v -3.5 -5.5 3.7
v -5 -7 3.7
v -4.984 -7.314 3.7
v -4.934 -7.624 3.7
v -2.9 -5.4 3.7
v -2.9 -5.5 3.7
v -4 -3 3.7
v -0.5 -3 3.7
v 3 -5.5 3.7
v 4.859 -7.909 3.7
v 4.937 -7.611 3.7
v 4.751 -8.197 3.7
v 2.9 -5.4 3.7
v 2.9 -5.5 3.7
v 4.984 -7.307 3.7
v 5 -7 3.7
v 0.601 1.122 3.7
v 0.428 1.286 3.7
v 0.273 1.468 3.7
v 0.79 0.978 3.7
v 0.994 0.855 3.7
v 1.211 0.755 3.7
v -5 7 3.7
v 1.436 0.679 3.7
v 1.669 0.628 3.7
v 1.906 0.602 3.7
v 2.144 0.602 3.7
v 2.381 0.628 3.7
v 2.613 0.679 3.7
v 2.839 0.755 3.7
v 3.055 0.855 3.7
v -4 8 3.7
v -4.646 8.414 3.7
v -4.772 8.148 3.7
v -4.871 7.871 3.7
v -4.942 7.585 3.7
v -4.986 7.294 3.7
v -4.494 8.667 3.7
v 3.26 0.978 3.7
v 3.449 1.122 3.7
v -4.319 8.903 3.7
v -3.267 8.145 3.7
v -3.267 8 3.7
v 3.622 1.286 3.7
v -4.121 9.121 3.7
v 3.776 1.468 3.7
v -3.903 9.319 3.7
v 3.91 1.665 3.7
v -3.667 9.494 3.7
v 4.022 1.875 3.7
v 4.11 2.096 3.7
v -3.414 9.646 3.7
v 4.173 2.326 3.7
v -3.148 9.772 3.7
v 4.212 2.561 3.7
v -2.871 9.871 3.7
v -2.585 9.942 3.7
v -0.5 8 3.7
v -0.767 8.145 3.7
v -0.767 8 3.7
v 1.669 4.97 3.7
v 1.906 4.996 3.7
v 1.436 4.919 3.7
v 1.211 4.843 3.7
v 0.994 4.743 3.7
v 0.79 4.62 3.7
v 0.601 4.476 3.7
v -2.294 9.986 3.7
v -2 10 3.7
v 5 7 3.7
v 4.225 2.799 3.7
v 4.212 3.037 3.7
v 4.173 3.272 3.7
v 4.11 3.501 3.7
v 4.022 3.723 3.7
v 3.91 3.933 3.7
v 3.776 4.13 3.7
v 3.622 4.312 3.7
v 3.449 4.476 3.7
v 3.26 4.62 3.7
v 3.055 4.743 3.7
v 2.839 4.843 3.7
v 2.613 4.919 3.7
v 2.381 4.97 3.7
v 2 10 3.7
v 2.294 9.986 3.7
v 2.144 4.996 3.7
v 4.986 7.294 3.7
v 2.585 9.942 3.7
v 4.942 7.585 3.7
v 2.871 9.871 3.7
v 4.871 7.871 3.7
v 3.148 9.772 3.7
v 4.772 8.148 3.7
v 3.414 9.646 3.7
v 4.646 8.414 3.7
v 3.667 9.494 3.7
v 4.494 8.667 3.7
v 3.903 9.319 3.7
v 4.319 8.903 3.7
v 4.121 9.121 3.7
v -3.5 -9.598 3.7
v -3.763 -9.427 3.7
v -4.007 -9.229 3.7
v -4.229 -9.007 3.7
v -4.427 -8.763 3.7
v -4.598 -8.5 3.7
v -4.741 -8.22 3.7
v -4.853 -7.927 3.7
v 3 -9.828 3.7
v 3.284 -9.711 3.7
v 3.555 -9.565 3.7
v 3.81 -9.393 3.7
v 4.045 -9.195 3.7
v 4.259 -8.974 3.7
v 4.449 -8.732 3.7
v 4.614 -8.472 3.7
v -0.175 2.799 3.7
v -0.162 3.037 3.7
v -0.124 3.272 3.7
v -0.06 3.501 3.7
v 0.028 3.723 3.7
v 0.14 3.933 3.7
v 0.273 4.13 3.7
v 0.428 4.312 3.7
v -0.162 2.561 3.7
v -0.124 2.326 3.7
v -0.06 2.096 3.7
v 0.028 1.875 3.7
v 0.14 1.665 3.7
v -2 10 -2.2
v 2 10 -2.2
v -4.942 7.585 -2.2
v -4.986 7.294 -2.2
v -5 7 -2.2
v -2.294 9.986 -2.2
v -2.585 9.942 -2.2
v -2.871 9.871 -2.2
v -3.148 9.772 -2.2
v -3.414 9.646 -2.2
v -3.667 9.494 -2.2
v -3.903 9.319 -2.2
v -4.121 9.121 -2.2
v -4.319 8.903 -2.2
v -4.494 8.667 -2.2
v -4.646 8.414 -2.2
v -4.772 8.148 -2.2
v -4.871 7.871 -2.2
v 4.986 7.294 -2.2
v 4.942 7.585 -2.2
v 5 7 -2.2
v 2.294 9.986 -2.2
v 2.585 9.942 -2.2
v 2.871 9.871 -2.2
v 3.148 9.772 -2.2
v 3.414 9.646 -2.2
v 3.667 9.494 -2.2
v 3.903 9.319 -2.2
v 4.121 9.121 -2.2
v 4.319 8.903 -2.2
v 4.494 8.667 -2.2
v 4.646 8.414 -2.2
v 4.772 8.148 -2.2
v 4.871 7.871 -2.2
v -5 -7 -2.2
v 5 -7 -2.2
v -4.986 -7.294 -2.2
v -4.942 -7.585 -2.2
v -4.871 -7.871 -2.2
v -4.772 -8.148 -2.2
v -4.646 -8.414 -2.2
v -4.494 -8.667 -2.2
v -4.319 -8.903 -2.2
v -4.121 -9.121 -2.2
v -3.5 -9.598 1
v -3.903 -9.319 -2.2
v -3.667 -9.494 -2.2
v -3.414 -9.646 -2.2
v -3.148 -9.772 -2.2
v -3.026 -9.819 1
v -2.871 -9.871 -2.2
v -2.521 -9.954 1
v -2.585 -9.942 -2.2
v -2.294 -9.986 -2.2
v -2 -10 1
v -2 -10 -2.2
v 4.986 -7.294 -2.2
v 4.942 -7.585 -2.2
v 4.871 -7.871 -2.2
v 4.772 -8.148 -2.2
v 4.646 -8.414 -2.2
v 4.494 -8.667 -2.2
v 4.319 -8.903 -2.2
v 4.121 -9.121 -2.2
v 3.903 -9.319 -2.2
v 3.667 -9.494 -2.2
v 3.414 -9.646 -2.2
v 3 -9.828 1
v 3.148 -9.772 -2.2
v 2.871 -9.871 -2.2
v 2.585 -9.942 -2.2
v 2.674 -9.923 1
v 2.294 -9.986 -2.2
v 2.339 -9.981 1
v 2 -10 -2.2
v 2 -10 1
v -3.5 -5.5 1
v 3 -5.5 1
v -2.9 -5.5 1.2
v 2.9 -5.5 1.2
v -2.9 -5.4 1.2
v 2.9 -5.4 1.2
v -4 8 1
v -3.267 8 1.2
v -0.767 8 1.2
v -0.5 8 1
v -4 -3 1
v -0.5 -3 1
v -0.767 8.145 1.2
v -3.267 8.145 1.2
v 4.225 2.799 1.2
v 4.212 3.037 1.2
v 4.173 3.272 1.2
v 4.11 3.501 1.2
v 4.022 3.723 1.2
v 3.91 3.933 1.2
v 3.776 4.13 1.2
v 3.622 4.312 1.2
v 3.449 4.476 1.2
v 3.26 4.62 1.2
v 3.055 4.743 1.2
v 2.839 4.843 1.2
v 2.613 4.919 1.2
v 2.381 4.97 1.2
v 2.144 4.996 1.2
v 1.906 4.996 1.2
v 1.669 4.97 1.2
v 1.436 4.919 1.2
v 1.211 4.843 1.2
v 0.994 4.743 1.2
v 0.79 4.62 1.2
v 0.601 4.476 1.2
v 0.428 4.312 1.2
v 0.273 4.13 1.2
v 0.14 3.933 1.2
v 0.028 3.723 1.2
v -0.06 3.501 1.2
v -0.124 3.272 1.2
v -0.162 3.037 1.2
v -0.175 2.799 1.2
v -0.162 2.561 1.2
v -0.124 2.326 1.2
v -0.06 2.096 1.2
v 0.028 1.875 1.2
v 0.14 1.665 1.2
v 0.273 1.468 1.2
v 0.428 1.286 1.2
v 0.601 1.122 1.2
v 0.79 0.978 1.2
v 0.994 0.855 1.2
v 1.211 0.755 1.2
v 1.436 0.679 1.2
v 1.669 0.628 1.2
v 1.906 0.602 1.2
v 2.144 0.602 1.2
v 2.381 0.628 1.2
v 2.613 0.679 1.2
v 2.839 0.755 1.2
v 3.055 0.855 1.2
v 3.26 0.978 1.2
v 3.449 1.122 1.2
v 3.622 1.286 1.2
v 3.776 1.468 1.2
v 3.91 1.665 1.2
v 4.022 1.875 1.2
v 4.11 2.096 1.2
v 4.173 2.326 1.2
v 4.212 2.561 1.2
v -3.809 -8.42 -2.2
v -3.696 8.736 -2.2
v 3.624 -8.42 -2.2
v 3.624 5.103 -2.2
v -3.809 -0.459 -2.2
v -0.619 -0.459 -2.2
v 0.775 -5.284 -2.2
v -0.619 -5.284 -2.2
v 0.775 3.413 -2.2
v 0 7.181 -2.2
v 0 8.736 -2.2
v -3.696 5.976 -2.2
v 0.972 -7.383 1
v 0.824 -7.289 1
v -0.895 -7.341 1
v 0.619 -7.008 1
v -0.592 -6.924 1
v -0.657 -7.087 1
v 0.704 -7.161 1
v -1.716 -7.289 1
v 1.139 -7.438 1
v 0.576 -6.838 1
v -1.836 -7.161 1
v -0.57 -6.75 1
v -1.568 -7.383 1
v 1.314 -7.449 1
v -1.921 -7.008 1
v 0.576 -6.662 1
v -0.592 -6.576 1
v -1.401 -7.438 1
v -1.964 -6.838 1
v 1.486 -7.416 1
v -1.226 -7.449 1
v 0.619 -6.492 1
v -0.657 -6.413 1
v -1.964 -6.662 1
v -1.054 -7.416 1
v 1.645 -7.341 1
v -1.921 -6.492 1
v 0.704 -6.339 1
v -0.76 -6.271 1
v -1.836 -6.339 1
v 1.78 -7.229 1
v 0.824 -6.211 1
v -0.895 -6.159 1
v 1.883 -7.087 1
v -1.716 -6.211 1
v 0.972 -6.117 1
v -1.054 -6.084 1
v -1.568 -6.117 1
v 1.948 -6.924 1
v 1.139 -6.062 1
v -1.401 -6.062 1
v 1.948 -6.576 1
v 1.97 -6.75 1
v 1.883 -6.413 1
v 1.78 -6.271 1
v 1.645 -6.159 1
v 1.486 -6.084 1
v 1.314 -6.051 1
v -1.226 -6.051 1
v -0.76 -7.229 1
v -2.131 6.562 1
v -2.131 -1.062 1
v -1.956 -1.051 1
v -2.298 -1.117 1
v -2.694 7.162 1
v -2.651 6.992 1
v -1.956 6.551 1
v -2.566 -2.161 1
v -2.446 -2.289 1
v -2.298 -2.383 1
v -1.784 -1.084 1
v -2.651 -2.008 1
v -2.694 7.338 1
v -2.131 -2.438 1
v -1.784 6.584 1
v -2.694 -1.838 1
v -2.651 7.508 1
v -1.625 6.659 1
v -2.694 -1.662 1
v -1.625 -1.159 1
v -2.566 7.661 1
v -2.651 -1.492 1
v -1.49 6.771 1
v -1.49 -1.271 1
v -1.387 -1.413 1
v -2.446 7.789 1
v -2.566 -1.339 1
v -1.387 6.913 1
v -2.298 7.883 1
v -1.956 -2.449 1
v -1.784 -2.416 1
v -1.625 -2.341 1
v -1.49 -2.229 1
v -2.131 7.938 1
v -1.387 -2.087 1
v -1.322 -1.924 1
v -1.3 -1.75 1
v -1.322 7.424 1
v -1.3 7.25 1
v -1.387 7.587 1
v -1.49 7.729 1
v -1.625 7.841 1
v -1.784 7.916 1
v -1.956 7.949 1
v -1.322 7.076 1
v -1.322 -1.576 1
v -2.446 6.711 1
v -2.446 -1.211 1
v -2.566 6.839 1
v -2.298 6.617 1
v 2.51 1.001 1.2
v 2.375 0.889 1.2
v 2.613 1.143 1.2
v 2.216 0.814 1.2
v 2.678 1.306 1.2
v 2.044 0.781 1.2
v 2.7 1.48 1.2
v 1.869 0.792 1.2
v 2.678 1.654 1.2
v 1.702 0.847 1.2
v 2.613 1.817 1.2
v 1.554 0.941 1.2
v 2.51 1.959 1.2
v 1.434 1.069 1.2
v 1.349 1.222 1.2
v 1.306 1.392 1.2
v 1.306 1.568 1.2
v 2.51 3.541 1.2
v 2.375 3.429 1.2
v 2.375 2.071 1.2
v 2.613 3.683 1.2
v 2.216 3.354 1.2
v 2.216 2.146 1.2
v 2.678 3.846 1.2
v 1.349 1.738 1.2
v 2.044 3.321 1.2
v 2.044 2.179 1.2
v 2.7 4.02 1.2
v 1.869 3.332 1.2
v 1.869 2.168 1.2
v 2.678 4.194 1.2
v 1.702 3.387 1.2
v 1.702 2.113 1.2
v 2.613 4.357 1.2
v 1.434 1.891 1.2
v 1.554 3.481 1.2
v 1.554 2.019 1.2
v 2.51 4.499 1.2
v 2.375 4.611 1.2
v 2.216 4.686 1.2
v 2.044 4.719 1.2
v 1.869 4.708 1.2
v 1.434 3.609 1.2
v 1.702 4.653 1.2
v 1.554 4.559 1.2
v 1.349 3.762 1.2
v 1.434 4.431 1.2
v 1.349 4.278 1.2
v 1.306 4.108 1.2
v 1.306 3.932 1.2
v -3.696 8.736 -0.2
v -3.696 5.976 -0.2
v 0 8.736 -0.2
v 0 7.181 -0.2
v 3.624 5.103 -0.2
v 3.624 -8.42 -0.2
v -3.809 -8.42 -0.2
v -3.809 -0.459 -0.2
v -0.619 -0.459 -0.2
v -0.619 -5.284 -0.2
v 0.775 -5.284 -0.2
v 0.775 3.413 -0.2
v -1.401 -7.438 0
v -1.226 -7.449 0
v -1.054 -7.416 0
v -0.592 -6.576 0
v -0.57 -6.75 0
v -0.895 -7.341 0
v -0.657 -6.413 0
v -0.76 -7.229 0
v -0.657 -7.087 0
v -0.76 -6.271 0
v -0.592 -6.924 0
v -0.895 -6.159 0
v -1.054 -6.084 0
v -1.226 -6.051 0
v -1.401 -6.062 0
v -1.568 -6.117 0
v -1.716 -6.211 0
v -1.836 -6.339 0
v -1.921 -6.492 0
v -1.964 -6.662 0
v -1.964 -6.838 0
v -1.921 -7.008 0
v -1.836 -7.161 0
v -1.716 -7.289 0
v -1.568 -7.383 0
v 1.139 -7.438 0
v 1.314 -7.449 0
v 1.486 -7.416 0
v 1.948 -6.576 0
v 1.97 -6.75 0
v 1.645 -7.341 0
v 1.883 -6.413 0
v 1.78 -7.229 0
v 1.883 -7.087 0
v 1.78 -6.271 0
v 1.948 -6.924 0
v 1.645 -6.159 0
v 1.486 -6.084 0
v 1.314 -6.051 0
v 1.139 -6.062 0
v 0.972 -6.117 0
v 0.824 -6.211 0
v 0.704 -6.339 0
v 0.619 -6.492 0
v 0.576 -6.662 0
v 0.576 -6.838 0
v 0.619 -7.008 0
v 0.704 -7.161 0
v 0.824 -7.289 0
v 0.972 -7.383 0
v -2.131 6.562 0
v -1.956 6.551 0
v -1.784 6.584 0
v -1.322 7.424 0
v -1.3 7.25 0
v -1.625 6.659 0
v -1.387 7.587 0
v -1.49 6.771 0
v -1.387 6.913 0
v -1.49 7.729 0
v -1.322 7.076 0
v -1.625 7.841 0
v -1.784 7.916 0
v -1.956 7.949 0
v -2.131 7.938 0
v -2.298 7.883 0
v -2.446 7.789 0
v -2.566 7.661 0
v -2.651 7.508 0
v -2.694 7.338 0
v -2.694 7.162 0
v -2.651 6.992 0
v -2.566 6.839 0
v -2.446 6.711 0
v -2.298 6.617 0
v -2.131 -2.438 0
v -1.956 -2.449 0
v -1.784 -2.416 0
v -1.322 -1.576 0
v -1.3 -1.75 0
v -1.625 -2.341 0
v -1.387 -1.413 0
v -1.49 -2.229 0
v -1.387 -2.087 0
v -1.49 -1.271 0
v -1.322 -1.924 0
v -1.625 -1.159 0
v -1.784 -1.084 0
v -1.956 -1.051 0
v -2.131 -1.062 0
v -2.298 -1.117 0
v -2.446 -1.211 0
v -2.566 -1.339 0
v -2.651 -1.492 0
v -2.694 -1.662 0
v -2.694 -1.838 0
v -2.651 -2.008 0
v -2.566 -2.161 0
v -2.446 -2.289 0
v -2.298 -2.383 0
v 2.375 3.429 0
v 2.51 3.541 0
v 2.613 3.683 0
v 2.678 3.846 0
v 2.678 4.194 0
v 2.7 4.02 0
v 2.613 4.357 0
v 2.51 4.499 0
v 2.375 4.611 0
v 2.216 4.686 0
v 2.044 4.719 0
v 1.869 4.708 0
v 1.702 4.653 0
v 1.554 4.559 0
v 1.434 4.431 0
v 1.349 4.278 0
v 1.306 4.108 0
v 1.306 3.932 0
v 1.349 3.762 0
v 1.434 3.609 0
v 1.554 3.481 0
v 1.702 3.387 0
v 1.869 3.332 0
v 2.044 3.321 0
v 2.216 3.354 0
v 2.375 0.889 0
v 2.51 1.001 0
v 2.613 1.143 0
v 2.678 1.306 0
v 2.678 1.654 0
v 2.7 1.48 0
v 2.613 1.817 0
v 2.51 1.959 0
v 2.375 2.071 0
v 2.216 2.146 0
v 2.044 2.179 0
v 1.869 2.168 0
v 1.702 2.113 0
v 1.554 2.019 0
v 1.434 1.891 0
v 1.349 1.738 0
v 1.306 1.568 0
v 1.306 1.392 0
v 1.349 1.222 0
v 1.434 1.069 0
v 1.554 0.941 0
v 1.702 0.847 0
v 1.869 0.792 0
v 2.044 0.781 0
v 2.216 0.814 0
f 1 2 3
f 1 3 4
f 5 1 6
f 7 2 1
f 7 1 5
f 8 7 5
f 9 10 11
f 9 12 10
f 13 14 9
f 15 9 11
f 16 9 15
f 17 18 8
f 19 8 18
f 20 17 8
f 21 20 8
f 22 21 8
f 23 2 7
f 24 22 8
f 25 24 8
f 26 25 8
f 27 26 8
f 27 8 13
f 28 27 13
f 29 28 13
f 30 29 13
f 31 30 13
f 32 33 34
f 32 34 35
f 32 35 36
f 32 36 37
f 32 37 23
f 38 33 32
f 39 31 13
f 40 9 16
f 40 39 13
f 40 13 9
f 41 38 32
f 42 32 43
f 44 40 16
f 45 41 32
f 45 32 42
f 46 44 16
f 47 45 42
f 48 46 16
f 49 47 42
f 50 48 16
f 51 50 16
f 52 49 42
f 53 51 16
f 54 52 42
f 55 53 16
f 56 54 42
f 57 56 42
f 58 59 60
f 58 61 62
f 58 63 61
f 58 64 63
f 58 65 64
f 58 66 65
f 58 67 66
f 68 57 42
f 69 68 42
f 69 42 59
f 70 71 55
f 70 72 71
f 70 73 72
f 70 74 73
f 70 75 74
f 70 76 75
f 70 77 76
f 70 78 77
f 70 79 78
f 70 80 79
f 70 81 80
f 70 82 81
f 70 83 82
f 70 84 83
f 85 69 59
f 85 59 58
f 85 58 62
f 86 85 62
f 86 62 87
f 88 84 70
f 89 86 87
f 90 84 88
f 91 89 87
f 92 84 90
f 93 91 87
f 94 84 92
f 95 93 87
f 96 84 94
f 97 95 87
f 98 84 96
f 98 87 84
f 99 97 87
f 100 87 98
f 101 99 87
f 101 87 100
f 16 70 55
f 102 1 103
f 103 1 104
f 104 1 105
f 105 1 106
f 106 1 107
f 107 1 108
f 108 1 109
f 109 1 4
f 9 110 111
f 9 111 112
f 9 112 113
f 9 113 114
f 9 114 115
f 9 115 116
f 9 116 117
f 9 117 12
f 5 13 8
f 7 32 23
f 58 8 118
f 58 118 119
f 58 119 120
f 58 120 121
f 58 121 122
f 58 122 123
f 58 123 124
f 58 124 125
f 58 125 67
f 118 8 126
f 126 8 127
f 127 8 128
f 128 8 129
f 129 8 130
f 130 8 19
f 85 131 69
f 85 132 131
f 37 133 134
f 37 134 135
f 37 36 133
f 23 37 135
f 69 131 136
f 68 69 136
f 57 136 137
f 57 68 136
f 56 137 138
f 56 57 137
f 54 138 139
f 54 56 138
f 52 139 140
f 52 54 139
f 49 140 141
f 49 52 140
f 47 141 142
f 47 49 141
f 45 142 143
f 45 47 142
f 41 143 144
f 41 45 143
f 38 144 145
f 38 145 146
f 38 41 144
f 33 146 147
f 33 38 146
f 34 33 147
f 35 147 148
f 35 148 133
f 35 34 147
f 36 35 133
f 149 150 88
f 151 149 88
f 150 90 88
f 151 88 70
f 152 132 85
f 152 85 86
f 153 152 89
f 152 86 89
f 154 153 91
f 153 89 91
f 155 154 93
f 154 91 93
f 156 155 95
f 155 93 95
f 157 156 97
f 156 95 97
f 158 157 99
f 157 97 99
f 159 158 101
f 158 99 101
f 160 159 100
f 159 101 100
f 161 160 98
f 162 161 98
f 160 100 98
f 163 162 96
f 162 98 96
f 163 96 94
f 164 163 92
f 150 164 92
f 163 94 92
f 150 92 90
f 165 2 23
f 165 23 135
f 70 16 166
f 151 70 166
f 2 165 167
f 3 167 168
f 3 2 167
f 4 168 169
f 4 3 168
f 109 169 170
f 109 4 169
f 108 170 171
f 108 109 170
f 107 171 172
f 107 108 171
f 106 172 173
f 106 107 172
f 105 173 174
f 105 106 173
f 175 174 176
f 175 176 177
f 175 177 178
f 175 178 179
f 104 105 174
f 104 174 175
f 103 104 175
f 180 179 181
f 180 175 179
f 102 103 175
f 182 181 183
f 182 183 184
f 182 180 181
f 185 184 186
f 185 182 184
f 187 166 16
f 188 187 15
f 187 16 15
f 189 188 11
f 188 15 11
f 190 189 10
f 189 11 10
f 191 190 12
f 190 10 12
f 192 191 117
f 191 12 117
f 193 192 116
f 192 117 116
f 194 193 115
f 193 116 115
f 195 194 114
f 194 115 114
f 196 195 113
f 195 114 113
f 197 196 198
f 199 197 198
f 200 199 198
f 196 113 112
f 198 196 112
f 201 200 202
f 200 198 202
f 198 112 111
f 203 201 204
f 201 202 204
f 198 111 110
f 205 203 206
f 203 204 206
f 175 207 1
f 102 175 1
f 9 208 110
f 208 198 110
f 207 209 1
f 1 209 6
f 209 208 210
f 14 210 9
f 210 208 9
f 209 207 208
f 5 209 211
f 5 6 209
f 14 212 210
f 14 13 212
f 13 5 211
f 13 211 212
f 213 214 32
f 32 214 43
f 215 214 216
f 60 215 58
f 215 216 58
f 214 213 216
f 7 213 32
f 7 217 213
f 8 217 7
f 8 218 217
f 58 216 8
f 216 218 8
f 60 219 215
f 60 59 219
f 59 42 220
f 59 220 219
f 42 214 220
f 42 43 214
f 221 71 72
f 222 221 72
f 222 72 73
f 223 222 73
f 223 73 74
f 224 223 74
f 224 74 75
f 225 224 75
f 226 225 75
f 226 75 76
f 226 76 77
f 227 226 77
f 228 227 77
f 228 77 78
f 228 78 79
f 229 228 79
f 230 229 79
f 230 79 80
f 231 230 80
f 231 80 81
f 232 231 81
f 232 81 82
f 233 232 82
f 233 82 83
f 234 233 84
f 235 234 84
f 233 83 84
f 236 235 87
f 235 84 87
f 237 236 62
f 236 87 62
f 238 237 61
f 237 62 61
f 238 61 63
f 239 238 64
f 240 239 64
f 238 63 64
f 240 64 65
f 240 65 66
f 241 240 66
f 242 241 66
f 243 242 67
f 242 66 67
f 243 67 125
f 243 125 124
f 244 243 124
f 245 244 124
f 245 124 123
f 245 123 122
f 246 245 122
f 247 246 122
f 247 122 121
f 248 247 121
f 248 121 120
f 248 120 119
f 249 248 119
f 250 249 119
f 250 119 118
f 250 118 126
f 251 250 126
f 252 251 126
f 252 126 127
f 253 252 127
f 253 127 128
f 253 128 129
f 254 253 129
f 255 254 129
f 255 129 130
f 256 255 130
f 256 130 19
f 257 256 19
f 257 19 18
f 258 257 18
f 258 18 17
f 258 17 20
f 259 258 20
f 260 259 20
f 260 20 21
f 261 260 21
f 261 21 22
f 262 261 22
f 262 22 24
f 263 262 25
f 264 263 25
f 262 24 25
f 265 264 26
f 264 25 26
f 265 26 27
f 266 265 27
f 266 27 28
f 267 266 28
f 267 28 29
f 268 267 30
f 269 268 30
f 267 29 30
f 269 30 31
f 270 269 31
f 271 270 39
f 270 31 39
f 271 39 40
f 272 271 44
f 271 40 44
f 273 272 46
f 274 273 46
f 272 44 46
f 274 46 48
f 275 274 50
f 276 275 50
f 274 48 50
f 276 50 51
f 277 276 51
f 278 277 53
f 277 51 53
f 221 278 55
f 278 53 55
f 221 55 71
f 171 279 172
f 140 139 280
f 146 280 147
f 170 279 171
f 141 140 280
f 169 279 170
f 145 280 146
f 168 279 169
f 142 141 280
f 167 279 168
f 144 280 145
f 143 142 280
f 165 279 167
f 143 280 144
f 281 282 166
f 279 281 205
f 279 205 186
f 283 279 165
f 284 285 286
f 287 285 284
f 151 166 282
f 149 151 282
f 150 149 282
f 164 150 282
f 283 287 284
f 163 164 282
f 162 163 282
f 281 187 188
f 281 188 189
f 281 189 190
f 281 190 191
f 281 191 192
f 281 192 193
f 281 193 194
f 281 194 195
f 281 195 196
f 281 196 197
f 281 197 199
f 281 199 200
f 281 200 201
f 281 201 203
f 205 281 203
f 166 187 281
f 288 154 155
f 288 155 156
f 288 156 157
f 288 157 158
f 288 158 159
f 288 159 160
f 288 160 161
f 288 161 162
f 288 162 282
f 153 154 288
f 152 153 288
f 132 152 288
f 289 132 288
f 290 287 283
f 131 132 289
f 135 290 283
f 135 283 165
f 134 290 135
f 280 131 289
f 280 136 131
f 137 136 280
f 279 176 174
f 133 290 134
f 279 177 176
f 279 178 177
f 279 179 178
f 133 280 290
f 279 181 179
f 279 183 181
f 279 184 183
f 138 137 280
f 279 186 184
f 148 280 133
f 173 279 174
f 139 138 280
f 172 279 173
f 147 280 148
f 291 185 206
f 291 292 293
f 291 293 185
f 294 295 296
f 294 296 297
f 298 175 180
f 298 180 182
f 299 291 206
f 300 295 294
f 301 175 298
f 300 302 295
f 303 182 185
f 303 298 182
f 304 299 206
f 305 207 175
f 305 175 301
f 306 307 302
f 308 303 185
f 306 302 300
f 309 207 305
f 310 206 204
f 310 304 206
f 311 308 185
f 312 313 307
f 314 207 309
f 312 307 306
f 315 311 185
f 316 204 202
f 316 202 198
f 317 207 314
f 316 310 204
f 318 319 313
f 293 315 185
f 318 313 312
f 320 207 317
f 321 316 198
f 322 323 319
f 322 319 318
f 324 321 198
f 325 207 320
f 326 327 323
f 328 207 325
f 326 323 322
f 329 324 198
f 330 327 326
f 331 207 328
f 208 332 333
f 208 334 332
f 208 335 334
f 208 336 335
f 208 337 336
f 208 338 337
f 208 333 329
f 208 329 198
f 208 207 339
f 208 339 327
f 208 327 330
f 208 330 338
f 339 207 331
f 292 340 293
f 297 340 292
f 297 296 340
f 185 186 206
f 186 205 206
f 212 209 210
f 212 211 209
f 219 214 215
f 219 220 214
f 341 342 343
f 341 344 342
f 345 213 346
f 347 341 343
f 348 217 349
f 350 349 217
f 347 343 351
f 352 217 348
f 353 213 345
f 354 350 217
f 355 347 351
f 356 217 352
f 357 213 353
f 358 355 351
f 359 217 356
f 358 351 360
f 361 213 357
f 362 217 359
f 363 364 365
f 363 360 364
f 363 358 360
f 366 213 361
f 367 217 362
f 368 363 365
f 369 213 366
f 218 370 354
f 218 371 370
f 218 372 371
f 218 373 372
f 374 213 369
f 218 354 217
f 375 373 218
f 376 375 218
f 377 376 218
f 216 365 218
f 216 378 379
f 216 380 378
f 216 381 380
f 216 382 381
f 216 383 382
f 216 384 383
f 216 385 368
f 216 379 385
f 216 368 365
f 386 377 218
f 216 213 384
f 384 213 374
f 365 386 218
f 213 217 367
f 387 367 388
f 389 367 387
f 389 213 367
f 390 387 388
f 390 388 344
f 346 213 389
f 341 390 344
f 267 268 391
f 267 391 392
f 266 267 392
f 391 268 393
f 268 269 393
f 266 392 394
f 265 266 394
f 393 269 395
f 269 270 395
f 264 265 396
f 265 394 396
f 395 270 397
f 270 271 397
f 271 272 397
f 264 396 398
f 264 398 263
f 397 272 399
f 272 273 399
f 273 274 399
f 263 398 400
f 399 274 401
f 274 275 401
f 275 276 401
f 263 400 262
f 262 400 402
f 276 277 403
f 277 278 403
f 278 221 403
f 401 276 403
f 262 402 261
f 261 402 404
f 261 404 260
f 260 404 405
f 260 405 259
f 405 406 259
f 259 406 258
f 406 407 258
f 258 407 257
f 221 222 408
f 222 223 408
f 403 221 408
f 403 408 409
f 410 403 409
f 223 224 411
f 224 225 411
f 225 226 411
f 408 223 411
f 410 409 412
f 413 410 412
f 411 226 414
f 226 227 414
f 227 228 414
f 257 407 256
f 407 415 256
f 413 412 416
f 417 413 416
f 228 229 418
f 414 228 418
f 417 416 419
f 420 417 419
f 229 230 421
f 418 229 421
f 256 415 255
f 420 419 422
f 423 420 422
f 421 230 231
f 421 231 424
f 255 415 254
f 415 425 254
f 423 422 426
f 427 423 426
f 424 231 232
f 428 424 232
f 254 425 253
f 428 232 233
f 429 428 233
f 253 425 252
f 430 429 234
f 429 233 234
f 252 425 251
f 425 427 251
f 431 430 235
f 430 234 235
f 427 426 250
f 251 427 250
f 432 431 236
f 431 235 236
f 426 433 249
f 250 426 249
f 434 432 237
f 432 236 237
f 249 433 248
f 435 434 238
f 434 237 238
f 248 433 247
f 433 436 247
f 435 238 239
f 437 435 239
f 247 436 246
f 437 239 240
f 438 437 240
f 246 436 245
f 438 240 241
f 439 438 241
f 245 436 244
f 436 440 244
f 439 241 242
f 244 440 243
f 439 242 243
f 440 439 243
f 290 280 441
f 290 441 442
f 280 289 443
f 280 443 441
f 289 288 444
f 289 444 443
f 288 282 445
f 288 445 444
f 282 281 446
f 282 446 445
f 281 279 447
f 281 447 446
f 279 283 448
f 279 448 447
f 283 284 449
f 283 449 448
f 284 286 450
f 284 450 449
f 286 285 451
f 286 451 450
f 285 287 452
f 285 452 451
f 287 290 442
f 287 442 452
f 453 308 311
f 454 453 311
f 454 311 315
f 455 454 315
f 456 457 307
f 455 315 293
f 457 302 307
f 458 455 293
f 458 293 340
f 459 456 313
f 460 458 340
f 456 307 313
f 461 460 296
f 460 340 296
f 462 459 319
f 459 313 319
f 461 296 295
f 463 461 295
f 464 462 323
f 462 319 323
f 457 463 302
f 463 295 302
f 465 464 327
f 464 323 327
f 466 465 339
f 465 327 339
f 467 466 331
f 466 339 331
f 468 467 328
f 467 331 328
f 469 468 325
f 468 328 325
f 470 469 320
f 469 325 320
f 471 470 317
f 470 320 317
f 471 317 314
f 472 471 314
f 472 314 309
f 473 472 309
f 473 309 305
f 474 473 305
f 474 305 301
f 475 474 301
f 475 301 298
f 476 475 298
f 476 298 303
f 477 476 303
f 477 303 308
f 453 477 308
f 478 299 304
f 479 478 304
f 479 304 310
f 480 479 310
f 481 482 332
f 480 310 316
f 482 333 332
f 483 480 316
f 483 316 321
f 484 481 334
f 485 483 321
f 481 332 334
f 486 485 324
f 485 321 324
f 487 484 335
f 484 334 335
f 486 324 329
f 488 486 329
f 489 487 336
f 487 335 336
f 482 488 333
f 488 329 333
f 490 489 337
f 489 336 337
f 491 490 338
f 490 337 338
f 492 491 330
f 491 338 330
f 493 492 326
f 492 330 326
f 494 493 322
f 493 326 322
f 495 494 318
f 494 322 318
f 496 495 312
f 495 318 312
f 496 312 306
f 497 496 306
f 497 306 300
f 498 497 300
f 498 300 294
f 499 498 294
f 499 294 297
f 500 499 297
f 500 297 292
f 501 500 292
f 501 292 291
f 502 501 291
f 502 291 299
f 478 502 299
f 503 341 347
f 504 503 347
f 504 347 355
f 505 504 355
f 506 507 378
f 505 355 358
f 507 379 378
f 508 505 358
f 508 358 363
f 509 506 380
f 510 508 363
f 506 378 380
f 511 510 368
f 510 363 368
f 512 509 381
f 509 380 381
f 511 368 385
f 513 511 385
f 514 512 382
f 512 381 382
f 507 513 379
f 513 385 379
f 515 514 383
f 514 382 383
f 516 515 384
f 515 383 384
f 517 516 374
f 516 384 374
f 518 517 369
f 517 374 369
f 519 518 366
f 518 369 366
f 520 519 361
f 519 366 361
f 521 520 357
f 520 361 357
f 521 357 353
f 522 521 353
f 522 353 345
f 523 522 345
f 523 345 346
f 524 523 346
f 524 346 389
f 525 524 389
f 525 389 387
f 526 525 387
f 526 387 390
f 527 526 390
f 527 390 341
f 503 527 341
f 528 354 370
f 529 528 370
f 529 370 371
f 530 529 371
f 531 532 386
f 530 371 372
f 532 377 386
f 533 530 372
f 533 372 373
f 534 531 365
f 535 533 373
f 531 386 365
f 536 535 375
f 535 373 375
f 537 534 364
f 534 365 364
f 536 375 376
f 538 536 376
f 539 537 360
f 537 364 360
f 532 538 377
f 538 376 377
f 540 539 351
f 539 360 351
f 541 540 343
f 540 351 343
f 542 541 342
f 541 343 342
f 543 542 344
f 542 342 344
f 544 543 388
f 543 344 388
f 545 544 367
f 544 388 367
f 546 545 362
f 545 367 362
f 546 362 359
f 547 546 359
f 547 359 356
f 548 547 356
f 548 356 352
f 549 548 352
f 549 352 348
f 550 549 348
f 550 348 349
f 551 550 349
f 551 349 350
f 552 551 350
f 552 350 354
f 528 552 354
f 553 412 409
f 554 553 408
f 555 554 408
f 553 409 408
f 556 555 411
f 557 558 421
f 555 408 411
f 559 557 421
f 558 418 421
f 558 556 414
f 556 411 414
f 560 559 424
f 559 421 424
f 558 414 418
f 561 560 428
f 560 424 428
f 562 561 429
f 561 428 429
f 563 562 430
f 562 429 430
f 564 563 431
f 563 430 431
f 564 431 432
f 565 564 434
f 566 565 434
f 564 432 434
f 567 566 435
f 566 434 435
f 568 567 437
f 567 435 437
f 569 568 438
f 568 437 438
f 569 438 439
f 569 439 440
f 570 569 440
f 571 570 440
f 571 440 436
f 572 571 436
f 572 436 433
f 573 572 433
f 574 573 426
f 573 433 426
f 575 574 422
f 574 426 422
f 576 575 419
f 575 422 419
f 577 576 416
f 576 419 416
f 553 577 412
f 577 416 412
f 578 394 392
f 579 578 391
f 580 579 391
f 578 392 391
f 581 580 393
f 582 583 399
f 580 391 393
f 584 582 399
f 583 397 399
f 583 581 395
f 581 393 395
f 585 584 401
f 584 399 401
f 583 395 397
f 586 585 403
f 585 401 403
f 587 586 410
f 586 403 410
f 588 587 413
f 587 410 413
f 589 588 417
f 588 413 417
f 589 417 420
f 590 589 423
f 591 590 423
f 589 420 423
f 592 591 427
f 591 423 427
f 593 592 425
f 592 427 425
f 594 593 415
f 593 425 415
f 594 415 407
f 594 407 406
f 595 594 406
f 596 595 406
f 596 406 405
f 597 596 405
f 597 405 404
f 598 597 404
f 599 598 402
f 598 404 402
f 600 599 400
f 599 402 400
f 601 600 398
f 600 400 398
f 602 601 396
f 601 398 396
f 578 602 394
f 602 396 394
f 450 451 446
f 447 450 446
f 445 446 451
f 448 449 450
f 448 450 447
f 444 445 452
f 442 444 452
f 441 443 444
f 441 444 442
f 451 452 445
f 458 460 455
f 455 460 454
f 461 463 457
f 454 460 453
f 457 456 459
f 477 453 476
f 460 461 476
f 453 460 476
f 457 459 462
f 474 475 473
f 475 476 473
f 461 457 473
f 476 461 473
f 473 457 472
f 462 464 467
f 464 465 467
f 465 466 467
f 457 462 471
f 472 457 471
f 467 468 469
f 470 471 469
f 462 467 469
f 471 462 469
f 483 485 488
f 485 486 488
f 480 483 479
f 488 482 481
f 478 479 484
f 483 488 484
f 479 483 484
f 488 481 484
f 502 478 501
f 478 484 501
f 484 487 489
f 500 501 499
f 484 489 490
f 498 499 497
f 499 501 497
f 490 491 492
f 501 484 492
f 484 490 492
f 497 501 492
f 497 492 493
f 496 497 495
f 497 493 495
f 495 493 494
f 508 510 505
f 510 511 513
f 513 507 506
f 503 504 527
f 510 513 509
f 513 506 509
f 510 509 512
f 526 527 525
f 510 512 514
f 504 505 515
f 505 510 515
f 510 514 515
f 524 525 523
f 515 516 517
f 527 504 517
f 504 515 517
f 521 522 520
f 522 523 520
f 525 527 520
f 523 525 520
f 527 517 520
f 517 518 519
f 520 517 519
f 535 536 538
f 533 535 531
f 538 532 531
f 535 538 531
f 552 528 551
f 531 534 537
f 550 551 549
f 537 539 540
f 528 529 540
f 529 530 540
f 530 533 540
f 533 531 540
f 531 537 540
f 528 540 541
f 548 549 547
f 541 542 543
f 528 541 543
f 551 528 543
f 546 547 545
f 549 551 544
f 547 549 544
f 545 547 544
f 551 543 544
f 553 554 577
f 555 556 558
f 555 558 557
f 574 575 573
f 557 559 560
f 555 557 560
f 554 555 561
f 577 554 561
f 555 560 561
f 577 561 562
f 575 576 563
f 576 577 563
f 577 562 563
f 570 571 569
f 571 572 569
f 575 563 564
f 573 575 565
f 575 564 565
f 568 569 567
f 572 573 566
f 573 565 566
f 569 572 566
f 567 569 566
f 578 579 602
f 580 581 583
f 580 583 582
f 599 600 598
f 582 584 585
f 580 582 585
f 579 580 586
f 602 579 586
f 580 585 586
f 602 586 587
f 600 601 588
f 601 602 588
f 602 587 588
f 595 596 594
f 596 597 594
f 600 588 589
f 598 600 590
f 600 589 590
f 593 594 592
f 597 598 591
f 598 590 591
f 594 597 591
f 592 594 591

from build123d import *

# Parameters (mm, degrees)
BOX001_W        = 3.5
BOX001_H        = 11
BOX001_DEPTH    = 10
BOX_W           = 6.5
BOX_H           = 5
BOX_DEPTH       = 4
SKETCH010_W     = 10
SKETCH010_H     = 20
PAD004_DEPTH    = 1.2
SKETCH011_R     = 0.7
POCKET004_DEPTH = 1.201
SKETCH012_W     = 10
SKETCH012_H     = 20
PAD005_DEPTH    = 0.2
SKETCH014_W     = 10
SKETCH014_H     = 20
PAD006_DEPTH    = 2
POCKET005_DEPTH = 2
SKETCH015_W     = 10
SKETCH015_H     = 20
PAD007_DEPTH    = 2.5
SKETCH016_R     = 2.2
SKETCH016_W     = 5.8
SKETCH016_H     = 2.7
SKETCH016_W_2   = 2.5
SKETCH016_H_2   = 10.776226
POCKET006_DEPTH = 2.5
FILLET_R        = 3


with BuildPart() as cubo001:
    # Box001 → Box001 (new body)
    with BuildSketch(Plane(origin=(-4, -3, 1), x_dir=(1, 0, 0), z_dir=(0, 0, 1))):
        with Locations((1.75, 5.5)):
            Rectangle(BOX001_W, BOX001_H)
    extrude(amount=BOX001_DEPTH)


with BuildPart() as cubo:
    # Box → Box (new body)
    with BuildSketch(Plane(origin=(-3.5, -10.5, 1), x_dir=(1, 0, 0), z_dir=(0, 0, 1))):
        with Locations((3.25, 2.5)):
            Rectangle(BOX_W, BOX_H)
    extrude(amount=BOX_DEPTH)


with BuildPart() as modificacion_luis:
    # Sketch010 → Pad004 (new body)
    with BuildSketch(Plane.XY):
        Rectangle(SKETCH010_W, SKETCH010_H)
    extrude(amount=PAD004_DEPTH)

    # Sketch011 → Pocket004 (cut, through all)
    with BuildSketch(Plane.XY.offset(1.2)):
        with Locations((-1.27, -6.75)):
            Circle(SKETCH011_R)
        with Locations((1.27, -6.75)):
            Circle(SKETCH011_R)
        with Locations((-2, 7.25)):
            Circle(SKETCH011_R)
        with Locations((-2, -1.75)):
            Circle(SKETCH011_R)
        with Locations((2, 4.02)):
            Circle(SKETCH011_R)
        with Locations((2, 1.48)):
            Circle(SKETCH011_R)
    extrude(amount=-POCKET004_DEPTH, mode=Mode.SUBTRACT)

    # Sketch012 → Pad005 (new body)
    with BuildSketch(Plane(origin=(0, 0, 0), x_dir=(1, 0, 0), z_dir=(0, 0, -1))):
        Rectangle(SKETCH012_W, SKETCH012_H)
    extrude(amount=PAD005_DEPTH)

    # Sketch014 → Pad006 (new body)
    with BuildSketch(Plane(origin=(0, 0, -0.2), x_dir=(1, 0, 0), z_dir=(0, 0, -1))):
        Rectangle(SKETCH014_W, SKETCH014_H)
    extrude(amount=PAD006_DEPTH)

    # Sketch013 → Pocket005 (cut)
    with BuildSketch(Plane(origin=(0, 0, -2.2), x_dir=(1, 0, 0), z_dir=(0, 0, -1))):
        Polygon((-3.80896, 8.420167), (3.62375, 8.420167), (3.62375, -5.103398), (0, -7.181223), (0, -8.736001), (-3.696102, -8.736001), (-3.696102, -5.976334), (0.775065, -3.412608), (0.775065, 5.283805), (-0.618984, 5.283805), (-0.618984, 0.458633), (-3.80896, 0.458633), align=None)
    extrude(amount=-POCKET005_DEPTH, mode=Mode.SUBTRACT)

    # Sketch015 → Pad007 (new body)
    with BuildSketch(Plane.XY.offset(1.2)):
        Rectangle(SKETCH015_W, SKETCH015_H)
    extrude(amount=PAD007_DEPTH)

    # Sketch016 → Pocket006 (cut)
    with BuildSketch(Plane.XY.offset(3.7)):
        with Locations((2.024904, 2.79891)):
            Circle(SKETCH016_R)
        with Locations((0, -6.75)):
            Rectangle(SKETCH016_W, SKETCH016_H)
        with Locations((-2.017145, 2.756578)):
            Rectangle(SKETCH016_W_2, SKETCH016_H_2)
    extrude(amount=-POCKET006_DEPTH, mode=Mode.SUBTRACT)

    # Fillet
    fillet_edges = [modificacion_luis.edges().sort_by_distance(p)[0] for p in [
        (5, -10, 0.75),
        (-5, -10, 0.75),
        (5, 10, 0.75),
        (-5, 10, 0.75),
    ]]
    fillet(fillet_edges, radius=FILLET_R)

    # Cut: cut Cubo
    add(cubo.part, mode=Mode.SUBTRACT)

    # Cut001: cut Cubo001
    add(cubo001.part, mode=Mode.SUBTRACT)


solid = modificacion_luis.part
